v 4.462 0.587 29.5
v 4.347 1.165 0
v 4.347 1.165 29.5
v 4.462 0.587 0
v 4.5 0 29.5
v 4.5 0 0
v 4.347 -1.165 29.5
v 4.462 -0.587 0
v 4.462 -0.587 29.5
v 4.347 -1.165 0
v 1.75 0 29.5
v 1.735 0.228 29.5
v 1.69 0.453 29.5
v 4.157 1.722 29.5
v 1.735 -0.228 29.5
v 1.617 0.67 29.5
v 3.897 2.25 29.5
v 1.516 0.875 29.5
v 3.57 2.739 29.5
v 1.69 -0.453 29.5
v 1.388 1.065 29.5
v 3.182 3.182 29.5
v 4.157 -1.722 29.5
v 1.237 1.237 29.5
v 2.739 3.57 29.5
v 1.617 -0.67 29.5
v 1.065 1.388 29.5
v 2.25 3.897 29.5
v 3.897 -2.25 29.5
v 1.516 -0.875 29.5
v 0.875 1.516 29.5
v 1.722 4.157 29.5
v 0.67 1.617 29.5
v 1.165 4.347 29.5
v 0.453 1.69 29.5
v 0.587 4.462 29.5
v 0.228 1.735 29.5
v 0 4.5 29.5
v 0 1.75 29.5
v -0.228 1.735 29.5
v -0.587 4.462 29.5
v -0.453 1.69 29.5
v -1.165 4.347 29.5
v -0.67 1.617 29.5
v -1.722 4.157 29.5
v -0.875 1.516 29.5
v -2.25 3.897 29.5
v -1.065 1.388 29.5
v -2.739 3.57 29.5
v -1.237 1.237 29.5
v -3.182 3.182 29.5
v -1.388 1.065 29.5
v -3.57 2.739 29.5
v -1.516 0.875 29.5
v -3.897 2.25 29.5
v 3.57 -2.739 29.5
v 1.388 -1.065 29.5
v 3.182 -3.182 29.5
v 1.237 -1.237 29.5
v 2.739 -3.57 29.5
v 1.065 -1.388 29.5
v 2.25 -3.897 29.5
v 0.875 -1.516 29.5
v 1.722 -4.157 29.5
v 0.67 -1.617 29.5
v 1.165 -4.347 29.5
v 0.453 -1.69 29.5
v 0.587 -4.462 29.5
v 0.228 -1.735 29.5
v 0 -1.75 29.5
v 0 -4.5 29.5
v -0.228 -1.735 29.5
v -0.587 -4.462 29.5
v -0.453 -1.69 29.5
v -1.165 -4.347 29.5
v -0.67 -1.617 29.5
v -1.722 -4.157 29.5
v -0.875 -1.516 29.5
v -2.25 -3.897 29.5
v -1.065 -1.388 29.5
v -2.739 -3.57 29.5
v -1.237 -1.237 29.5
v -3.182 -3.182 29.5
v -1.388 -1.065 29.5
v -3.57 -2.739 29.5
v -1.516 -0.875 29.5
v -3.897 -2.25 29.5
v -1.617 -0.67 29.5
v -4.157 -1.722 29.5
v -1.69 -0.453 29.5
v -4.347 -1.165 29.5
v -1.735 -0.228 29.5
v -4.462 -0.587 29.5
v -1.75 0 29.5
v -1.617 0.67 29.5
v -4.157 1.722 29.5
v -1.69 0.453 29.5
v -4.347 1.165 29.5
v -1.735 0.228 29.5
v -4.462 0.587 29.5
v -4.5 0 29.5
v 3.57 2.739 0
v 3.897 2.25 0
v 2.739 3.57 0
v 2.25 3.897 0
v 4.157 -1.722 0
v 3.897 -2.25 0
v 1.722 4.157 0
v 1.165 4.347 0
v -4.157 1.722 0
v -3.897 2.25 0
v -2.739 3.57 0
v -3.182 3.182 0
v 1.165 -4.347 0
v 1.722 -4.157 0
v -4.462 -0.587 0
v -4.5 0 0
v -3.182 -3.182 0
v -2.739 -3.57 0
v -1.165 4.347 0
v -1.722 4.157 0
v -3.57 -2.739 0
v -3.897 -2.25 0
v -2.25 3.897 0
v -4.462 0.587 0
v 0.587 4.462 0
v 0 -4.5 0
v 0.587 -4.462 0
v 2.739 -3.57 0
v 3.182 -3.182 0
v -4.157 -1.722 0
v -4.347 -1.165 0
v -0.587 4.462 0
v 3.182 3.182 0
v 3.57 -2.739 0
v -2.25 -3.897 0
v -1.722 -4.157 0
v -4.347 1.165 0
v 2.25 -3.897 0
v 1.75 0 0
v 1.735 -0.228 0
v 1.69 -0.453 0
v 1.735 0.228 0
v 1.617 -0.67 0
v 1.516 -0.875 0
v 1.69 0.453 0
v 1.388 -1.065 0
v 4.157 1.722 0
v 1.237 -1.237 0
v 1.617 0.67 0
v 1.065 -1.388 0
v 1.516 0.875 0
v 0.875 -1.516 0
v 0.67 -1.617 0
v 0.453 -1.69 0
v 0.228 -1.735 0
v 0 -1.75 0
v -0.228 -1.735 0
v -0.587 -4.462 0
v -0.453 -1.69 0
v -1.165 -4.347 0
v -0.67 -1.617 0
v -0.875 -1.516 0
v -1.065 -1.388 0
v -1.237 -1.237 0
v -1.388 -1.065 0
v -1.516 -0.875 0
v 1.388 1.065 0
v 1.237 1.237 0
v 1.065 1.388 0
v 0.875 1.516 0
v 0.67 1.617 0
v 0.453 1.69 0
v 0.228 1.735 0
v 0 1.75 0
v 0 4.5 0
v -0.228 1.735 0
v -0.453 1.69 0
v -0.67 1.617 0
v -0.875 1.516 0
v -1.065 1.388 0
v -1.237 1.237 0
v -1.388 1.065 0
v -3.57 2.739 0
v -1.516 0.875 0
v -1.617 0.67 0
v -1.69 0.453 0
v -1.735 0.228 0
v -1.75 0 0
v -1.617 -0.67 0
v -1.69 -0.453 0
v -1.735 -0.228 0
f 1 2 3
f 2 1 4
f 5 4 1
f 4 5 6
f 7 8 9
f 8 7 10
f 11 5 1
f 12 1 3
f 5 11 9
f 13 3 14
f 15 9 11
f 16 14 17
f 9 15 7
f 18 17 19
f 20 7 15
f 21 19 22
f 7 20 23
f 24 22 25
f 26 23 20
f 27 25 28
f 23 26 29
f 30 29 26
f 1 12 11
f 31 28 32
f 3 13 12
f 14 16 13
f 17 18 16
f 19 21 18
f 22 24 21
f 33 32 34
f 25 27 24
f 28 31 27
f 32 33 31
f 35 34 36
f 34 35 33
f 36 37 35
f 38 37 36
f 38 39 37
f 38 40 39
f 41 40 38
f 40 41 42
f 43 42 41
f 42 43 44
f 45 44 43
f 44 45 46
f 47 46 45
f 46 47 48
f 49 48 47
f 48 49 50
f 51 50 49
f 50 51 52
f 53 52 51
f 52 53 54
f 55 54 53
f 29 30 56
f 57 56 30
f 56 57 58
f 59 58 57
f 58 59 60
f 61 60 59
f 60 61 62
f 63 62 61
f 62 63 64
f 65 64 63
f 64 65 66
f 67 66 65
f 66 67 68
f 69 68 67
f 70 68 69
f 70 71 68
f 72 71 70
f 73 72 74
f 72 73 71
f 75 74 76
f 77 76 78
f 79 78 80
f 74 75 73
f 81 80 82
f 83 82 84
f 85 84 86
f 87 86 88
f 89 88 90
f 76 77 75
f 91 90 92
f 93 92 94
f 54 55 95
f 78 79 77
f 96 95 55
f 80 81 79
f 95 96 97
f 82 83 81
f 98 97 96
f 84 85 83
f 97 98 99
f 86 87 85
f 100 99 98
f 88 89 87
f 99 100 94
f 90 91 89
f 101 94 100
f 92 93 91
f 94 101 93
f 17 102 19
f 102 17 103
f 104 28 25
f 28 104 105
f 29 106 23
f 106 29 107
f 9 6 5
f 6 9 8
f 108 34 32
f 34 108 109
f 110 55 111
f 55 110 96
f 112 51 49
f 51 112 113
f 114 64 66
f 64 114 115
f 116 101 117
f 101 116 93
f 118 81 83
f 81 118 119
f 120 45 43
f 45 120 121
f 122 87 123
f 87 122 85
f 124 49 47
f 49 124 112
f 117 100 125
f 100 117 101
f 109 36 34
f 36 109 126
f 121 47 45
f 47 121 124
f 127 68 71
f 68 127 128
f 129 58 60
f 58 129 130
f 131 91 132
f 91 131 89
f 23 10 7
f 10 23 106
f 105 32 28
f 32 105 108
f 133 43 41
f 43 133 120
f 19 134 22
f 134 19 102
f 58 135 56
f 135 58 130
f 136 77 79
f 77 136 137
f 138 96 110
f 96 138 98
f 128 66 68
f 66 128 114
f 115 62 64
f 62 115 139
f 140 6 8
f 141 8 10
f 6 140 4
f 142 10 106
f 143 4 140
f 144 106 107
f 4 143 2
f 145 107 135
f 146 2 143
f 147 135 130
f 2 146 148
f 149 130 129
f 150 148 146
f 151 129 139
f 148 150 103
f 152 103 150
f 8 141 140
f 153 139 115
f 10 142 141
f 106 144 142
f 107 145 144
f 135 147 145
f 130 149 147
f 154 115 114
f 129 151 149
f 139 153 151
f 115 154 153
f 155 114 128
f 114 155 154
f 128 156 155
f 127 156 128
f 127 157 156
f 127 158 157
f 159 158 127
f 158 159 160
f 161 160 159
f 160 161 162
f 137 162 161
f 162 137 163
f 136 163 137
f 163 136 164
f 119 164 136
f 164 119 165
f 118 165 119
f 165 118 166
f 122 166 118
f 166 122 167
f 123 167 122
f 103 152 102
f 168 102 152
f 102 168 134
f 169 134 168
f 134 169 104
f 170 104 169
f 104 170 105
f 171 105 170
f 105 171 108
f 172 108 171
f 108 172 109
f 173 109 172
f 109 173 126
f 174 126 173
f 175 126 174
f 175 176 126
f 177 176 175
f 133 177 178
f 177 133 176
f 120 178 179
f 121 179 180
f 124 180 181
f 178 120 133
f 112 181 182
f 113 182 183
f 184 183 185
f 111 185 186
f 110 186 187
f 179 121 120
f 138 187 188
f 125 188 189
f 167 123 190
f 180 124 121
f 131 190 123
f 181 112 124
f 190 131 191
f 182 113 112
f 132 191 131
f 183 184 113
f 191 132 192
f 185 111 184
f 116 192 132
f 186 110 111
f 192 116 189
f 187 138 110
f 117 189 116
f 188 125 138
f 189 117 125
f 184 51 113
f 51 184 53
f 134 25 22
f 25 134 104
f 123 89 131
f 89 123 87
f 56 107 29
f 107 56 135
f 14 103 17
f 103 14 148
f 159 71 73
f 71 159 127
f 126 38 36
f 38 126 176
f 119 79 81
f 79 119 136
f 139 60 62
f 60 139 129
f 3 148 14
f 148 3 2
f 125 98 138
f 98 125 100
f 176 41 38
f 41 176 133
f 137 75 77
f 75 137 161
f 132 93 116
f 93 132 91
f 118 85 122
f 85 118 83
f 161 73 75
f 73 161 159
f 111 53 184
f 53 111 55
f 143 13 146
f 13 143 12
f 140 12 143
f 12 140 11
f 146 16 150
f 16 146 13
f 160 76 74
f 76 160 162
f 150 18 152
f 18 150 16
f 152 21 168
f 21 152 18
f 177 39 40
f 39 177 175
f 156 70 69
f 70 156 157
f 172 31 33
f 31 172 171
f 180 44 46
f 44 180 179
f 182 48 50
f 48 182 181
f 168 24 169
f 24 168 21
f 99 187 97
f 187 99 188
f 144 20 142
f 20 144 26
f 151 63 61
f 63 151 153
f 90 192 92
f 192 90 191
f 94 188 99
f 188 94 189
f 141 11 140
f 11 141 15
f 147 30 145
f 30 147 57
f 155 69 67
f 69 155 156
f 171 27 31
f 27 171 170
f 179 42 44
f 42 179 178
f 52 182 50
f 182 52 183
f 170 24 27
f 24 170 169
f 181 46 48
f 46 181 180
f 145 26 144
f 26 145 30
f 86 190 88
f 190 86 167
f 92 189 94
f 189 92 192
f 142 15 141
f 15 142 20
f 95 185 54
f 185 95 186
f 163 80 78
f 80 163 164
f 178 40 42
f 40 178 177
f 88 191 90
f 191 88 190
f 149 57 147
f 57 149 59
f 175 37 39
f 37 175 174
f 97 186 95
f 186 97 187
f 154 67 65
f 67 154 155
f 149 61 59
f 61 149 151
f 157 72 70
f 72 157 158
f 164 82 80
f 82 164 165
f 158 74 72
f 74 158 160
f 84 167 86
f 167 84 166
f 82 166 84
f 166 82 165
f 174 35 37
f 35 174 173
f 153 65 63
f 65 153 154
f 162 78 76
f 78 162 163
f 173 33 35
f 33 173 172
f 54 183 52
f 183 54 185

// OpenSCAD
// Gen-DI — frame standoff tube between stator and an endbell, on each M3 frame rod (outside rotor OD).
// Print x4. Height = frame_standoff_h (rotor + steel + hub + collar + running clearance).
include <parameters.scad>;
$fn = 48;
difference() {
    cylinder(d=standoff_od, h=frame_standoff_h);
    translate([0, 0, -0.1]) cylinder(d=m3_clear, h=frame_standoff_h + 0.2);
}
